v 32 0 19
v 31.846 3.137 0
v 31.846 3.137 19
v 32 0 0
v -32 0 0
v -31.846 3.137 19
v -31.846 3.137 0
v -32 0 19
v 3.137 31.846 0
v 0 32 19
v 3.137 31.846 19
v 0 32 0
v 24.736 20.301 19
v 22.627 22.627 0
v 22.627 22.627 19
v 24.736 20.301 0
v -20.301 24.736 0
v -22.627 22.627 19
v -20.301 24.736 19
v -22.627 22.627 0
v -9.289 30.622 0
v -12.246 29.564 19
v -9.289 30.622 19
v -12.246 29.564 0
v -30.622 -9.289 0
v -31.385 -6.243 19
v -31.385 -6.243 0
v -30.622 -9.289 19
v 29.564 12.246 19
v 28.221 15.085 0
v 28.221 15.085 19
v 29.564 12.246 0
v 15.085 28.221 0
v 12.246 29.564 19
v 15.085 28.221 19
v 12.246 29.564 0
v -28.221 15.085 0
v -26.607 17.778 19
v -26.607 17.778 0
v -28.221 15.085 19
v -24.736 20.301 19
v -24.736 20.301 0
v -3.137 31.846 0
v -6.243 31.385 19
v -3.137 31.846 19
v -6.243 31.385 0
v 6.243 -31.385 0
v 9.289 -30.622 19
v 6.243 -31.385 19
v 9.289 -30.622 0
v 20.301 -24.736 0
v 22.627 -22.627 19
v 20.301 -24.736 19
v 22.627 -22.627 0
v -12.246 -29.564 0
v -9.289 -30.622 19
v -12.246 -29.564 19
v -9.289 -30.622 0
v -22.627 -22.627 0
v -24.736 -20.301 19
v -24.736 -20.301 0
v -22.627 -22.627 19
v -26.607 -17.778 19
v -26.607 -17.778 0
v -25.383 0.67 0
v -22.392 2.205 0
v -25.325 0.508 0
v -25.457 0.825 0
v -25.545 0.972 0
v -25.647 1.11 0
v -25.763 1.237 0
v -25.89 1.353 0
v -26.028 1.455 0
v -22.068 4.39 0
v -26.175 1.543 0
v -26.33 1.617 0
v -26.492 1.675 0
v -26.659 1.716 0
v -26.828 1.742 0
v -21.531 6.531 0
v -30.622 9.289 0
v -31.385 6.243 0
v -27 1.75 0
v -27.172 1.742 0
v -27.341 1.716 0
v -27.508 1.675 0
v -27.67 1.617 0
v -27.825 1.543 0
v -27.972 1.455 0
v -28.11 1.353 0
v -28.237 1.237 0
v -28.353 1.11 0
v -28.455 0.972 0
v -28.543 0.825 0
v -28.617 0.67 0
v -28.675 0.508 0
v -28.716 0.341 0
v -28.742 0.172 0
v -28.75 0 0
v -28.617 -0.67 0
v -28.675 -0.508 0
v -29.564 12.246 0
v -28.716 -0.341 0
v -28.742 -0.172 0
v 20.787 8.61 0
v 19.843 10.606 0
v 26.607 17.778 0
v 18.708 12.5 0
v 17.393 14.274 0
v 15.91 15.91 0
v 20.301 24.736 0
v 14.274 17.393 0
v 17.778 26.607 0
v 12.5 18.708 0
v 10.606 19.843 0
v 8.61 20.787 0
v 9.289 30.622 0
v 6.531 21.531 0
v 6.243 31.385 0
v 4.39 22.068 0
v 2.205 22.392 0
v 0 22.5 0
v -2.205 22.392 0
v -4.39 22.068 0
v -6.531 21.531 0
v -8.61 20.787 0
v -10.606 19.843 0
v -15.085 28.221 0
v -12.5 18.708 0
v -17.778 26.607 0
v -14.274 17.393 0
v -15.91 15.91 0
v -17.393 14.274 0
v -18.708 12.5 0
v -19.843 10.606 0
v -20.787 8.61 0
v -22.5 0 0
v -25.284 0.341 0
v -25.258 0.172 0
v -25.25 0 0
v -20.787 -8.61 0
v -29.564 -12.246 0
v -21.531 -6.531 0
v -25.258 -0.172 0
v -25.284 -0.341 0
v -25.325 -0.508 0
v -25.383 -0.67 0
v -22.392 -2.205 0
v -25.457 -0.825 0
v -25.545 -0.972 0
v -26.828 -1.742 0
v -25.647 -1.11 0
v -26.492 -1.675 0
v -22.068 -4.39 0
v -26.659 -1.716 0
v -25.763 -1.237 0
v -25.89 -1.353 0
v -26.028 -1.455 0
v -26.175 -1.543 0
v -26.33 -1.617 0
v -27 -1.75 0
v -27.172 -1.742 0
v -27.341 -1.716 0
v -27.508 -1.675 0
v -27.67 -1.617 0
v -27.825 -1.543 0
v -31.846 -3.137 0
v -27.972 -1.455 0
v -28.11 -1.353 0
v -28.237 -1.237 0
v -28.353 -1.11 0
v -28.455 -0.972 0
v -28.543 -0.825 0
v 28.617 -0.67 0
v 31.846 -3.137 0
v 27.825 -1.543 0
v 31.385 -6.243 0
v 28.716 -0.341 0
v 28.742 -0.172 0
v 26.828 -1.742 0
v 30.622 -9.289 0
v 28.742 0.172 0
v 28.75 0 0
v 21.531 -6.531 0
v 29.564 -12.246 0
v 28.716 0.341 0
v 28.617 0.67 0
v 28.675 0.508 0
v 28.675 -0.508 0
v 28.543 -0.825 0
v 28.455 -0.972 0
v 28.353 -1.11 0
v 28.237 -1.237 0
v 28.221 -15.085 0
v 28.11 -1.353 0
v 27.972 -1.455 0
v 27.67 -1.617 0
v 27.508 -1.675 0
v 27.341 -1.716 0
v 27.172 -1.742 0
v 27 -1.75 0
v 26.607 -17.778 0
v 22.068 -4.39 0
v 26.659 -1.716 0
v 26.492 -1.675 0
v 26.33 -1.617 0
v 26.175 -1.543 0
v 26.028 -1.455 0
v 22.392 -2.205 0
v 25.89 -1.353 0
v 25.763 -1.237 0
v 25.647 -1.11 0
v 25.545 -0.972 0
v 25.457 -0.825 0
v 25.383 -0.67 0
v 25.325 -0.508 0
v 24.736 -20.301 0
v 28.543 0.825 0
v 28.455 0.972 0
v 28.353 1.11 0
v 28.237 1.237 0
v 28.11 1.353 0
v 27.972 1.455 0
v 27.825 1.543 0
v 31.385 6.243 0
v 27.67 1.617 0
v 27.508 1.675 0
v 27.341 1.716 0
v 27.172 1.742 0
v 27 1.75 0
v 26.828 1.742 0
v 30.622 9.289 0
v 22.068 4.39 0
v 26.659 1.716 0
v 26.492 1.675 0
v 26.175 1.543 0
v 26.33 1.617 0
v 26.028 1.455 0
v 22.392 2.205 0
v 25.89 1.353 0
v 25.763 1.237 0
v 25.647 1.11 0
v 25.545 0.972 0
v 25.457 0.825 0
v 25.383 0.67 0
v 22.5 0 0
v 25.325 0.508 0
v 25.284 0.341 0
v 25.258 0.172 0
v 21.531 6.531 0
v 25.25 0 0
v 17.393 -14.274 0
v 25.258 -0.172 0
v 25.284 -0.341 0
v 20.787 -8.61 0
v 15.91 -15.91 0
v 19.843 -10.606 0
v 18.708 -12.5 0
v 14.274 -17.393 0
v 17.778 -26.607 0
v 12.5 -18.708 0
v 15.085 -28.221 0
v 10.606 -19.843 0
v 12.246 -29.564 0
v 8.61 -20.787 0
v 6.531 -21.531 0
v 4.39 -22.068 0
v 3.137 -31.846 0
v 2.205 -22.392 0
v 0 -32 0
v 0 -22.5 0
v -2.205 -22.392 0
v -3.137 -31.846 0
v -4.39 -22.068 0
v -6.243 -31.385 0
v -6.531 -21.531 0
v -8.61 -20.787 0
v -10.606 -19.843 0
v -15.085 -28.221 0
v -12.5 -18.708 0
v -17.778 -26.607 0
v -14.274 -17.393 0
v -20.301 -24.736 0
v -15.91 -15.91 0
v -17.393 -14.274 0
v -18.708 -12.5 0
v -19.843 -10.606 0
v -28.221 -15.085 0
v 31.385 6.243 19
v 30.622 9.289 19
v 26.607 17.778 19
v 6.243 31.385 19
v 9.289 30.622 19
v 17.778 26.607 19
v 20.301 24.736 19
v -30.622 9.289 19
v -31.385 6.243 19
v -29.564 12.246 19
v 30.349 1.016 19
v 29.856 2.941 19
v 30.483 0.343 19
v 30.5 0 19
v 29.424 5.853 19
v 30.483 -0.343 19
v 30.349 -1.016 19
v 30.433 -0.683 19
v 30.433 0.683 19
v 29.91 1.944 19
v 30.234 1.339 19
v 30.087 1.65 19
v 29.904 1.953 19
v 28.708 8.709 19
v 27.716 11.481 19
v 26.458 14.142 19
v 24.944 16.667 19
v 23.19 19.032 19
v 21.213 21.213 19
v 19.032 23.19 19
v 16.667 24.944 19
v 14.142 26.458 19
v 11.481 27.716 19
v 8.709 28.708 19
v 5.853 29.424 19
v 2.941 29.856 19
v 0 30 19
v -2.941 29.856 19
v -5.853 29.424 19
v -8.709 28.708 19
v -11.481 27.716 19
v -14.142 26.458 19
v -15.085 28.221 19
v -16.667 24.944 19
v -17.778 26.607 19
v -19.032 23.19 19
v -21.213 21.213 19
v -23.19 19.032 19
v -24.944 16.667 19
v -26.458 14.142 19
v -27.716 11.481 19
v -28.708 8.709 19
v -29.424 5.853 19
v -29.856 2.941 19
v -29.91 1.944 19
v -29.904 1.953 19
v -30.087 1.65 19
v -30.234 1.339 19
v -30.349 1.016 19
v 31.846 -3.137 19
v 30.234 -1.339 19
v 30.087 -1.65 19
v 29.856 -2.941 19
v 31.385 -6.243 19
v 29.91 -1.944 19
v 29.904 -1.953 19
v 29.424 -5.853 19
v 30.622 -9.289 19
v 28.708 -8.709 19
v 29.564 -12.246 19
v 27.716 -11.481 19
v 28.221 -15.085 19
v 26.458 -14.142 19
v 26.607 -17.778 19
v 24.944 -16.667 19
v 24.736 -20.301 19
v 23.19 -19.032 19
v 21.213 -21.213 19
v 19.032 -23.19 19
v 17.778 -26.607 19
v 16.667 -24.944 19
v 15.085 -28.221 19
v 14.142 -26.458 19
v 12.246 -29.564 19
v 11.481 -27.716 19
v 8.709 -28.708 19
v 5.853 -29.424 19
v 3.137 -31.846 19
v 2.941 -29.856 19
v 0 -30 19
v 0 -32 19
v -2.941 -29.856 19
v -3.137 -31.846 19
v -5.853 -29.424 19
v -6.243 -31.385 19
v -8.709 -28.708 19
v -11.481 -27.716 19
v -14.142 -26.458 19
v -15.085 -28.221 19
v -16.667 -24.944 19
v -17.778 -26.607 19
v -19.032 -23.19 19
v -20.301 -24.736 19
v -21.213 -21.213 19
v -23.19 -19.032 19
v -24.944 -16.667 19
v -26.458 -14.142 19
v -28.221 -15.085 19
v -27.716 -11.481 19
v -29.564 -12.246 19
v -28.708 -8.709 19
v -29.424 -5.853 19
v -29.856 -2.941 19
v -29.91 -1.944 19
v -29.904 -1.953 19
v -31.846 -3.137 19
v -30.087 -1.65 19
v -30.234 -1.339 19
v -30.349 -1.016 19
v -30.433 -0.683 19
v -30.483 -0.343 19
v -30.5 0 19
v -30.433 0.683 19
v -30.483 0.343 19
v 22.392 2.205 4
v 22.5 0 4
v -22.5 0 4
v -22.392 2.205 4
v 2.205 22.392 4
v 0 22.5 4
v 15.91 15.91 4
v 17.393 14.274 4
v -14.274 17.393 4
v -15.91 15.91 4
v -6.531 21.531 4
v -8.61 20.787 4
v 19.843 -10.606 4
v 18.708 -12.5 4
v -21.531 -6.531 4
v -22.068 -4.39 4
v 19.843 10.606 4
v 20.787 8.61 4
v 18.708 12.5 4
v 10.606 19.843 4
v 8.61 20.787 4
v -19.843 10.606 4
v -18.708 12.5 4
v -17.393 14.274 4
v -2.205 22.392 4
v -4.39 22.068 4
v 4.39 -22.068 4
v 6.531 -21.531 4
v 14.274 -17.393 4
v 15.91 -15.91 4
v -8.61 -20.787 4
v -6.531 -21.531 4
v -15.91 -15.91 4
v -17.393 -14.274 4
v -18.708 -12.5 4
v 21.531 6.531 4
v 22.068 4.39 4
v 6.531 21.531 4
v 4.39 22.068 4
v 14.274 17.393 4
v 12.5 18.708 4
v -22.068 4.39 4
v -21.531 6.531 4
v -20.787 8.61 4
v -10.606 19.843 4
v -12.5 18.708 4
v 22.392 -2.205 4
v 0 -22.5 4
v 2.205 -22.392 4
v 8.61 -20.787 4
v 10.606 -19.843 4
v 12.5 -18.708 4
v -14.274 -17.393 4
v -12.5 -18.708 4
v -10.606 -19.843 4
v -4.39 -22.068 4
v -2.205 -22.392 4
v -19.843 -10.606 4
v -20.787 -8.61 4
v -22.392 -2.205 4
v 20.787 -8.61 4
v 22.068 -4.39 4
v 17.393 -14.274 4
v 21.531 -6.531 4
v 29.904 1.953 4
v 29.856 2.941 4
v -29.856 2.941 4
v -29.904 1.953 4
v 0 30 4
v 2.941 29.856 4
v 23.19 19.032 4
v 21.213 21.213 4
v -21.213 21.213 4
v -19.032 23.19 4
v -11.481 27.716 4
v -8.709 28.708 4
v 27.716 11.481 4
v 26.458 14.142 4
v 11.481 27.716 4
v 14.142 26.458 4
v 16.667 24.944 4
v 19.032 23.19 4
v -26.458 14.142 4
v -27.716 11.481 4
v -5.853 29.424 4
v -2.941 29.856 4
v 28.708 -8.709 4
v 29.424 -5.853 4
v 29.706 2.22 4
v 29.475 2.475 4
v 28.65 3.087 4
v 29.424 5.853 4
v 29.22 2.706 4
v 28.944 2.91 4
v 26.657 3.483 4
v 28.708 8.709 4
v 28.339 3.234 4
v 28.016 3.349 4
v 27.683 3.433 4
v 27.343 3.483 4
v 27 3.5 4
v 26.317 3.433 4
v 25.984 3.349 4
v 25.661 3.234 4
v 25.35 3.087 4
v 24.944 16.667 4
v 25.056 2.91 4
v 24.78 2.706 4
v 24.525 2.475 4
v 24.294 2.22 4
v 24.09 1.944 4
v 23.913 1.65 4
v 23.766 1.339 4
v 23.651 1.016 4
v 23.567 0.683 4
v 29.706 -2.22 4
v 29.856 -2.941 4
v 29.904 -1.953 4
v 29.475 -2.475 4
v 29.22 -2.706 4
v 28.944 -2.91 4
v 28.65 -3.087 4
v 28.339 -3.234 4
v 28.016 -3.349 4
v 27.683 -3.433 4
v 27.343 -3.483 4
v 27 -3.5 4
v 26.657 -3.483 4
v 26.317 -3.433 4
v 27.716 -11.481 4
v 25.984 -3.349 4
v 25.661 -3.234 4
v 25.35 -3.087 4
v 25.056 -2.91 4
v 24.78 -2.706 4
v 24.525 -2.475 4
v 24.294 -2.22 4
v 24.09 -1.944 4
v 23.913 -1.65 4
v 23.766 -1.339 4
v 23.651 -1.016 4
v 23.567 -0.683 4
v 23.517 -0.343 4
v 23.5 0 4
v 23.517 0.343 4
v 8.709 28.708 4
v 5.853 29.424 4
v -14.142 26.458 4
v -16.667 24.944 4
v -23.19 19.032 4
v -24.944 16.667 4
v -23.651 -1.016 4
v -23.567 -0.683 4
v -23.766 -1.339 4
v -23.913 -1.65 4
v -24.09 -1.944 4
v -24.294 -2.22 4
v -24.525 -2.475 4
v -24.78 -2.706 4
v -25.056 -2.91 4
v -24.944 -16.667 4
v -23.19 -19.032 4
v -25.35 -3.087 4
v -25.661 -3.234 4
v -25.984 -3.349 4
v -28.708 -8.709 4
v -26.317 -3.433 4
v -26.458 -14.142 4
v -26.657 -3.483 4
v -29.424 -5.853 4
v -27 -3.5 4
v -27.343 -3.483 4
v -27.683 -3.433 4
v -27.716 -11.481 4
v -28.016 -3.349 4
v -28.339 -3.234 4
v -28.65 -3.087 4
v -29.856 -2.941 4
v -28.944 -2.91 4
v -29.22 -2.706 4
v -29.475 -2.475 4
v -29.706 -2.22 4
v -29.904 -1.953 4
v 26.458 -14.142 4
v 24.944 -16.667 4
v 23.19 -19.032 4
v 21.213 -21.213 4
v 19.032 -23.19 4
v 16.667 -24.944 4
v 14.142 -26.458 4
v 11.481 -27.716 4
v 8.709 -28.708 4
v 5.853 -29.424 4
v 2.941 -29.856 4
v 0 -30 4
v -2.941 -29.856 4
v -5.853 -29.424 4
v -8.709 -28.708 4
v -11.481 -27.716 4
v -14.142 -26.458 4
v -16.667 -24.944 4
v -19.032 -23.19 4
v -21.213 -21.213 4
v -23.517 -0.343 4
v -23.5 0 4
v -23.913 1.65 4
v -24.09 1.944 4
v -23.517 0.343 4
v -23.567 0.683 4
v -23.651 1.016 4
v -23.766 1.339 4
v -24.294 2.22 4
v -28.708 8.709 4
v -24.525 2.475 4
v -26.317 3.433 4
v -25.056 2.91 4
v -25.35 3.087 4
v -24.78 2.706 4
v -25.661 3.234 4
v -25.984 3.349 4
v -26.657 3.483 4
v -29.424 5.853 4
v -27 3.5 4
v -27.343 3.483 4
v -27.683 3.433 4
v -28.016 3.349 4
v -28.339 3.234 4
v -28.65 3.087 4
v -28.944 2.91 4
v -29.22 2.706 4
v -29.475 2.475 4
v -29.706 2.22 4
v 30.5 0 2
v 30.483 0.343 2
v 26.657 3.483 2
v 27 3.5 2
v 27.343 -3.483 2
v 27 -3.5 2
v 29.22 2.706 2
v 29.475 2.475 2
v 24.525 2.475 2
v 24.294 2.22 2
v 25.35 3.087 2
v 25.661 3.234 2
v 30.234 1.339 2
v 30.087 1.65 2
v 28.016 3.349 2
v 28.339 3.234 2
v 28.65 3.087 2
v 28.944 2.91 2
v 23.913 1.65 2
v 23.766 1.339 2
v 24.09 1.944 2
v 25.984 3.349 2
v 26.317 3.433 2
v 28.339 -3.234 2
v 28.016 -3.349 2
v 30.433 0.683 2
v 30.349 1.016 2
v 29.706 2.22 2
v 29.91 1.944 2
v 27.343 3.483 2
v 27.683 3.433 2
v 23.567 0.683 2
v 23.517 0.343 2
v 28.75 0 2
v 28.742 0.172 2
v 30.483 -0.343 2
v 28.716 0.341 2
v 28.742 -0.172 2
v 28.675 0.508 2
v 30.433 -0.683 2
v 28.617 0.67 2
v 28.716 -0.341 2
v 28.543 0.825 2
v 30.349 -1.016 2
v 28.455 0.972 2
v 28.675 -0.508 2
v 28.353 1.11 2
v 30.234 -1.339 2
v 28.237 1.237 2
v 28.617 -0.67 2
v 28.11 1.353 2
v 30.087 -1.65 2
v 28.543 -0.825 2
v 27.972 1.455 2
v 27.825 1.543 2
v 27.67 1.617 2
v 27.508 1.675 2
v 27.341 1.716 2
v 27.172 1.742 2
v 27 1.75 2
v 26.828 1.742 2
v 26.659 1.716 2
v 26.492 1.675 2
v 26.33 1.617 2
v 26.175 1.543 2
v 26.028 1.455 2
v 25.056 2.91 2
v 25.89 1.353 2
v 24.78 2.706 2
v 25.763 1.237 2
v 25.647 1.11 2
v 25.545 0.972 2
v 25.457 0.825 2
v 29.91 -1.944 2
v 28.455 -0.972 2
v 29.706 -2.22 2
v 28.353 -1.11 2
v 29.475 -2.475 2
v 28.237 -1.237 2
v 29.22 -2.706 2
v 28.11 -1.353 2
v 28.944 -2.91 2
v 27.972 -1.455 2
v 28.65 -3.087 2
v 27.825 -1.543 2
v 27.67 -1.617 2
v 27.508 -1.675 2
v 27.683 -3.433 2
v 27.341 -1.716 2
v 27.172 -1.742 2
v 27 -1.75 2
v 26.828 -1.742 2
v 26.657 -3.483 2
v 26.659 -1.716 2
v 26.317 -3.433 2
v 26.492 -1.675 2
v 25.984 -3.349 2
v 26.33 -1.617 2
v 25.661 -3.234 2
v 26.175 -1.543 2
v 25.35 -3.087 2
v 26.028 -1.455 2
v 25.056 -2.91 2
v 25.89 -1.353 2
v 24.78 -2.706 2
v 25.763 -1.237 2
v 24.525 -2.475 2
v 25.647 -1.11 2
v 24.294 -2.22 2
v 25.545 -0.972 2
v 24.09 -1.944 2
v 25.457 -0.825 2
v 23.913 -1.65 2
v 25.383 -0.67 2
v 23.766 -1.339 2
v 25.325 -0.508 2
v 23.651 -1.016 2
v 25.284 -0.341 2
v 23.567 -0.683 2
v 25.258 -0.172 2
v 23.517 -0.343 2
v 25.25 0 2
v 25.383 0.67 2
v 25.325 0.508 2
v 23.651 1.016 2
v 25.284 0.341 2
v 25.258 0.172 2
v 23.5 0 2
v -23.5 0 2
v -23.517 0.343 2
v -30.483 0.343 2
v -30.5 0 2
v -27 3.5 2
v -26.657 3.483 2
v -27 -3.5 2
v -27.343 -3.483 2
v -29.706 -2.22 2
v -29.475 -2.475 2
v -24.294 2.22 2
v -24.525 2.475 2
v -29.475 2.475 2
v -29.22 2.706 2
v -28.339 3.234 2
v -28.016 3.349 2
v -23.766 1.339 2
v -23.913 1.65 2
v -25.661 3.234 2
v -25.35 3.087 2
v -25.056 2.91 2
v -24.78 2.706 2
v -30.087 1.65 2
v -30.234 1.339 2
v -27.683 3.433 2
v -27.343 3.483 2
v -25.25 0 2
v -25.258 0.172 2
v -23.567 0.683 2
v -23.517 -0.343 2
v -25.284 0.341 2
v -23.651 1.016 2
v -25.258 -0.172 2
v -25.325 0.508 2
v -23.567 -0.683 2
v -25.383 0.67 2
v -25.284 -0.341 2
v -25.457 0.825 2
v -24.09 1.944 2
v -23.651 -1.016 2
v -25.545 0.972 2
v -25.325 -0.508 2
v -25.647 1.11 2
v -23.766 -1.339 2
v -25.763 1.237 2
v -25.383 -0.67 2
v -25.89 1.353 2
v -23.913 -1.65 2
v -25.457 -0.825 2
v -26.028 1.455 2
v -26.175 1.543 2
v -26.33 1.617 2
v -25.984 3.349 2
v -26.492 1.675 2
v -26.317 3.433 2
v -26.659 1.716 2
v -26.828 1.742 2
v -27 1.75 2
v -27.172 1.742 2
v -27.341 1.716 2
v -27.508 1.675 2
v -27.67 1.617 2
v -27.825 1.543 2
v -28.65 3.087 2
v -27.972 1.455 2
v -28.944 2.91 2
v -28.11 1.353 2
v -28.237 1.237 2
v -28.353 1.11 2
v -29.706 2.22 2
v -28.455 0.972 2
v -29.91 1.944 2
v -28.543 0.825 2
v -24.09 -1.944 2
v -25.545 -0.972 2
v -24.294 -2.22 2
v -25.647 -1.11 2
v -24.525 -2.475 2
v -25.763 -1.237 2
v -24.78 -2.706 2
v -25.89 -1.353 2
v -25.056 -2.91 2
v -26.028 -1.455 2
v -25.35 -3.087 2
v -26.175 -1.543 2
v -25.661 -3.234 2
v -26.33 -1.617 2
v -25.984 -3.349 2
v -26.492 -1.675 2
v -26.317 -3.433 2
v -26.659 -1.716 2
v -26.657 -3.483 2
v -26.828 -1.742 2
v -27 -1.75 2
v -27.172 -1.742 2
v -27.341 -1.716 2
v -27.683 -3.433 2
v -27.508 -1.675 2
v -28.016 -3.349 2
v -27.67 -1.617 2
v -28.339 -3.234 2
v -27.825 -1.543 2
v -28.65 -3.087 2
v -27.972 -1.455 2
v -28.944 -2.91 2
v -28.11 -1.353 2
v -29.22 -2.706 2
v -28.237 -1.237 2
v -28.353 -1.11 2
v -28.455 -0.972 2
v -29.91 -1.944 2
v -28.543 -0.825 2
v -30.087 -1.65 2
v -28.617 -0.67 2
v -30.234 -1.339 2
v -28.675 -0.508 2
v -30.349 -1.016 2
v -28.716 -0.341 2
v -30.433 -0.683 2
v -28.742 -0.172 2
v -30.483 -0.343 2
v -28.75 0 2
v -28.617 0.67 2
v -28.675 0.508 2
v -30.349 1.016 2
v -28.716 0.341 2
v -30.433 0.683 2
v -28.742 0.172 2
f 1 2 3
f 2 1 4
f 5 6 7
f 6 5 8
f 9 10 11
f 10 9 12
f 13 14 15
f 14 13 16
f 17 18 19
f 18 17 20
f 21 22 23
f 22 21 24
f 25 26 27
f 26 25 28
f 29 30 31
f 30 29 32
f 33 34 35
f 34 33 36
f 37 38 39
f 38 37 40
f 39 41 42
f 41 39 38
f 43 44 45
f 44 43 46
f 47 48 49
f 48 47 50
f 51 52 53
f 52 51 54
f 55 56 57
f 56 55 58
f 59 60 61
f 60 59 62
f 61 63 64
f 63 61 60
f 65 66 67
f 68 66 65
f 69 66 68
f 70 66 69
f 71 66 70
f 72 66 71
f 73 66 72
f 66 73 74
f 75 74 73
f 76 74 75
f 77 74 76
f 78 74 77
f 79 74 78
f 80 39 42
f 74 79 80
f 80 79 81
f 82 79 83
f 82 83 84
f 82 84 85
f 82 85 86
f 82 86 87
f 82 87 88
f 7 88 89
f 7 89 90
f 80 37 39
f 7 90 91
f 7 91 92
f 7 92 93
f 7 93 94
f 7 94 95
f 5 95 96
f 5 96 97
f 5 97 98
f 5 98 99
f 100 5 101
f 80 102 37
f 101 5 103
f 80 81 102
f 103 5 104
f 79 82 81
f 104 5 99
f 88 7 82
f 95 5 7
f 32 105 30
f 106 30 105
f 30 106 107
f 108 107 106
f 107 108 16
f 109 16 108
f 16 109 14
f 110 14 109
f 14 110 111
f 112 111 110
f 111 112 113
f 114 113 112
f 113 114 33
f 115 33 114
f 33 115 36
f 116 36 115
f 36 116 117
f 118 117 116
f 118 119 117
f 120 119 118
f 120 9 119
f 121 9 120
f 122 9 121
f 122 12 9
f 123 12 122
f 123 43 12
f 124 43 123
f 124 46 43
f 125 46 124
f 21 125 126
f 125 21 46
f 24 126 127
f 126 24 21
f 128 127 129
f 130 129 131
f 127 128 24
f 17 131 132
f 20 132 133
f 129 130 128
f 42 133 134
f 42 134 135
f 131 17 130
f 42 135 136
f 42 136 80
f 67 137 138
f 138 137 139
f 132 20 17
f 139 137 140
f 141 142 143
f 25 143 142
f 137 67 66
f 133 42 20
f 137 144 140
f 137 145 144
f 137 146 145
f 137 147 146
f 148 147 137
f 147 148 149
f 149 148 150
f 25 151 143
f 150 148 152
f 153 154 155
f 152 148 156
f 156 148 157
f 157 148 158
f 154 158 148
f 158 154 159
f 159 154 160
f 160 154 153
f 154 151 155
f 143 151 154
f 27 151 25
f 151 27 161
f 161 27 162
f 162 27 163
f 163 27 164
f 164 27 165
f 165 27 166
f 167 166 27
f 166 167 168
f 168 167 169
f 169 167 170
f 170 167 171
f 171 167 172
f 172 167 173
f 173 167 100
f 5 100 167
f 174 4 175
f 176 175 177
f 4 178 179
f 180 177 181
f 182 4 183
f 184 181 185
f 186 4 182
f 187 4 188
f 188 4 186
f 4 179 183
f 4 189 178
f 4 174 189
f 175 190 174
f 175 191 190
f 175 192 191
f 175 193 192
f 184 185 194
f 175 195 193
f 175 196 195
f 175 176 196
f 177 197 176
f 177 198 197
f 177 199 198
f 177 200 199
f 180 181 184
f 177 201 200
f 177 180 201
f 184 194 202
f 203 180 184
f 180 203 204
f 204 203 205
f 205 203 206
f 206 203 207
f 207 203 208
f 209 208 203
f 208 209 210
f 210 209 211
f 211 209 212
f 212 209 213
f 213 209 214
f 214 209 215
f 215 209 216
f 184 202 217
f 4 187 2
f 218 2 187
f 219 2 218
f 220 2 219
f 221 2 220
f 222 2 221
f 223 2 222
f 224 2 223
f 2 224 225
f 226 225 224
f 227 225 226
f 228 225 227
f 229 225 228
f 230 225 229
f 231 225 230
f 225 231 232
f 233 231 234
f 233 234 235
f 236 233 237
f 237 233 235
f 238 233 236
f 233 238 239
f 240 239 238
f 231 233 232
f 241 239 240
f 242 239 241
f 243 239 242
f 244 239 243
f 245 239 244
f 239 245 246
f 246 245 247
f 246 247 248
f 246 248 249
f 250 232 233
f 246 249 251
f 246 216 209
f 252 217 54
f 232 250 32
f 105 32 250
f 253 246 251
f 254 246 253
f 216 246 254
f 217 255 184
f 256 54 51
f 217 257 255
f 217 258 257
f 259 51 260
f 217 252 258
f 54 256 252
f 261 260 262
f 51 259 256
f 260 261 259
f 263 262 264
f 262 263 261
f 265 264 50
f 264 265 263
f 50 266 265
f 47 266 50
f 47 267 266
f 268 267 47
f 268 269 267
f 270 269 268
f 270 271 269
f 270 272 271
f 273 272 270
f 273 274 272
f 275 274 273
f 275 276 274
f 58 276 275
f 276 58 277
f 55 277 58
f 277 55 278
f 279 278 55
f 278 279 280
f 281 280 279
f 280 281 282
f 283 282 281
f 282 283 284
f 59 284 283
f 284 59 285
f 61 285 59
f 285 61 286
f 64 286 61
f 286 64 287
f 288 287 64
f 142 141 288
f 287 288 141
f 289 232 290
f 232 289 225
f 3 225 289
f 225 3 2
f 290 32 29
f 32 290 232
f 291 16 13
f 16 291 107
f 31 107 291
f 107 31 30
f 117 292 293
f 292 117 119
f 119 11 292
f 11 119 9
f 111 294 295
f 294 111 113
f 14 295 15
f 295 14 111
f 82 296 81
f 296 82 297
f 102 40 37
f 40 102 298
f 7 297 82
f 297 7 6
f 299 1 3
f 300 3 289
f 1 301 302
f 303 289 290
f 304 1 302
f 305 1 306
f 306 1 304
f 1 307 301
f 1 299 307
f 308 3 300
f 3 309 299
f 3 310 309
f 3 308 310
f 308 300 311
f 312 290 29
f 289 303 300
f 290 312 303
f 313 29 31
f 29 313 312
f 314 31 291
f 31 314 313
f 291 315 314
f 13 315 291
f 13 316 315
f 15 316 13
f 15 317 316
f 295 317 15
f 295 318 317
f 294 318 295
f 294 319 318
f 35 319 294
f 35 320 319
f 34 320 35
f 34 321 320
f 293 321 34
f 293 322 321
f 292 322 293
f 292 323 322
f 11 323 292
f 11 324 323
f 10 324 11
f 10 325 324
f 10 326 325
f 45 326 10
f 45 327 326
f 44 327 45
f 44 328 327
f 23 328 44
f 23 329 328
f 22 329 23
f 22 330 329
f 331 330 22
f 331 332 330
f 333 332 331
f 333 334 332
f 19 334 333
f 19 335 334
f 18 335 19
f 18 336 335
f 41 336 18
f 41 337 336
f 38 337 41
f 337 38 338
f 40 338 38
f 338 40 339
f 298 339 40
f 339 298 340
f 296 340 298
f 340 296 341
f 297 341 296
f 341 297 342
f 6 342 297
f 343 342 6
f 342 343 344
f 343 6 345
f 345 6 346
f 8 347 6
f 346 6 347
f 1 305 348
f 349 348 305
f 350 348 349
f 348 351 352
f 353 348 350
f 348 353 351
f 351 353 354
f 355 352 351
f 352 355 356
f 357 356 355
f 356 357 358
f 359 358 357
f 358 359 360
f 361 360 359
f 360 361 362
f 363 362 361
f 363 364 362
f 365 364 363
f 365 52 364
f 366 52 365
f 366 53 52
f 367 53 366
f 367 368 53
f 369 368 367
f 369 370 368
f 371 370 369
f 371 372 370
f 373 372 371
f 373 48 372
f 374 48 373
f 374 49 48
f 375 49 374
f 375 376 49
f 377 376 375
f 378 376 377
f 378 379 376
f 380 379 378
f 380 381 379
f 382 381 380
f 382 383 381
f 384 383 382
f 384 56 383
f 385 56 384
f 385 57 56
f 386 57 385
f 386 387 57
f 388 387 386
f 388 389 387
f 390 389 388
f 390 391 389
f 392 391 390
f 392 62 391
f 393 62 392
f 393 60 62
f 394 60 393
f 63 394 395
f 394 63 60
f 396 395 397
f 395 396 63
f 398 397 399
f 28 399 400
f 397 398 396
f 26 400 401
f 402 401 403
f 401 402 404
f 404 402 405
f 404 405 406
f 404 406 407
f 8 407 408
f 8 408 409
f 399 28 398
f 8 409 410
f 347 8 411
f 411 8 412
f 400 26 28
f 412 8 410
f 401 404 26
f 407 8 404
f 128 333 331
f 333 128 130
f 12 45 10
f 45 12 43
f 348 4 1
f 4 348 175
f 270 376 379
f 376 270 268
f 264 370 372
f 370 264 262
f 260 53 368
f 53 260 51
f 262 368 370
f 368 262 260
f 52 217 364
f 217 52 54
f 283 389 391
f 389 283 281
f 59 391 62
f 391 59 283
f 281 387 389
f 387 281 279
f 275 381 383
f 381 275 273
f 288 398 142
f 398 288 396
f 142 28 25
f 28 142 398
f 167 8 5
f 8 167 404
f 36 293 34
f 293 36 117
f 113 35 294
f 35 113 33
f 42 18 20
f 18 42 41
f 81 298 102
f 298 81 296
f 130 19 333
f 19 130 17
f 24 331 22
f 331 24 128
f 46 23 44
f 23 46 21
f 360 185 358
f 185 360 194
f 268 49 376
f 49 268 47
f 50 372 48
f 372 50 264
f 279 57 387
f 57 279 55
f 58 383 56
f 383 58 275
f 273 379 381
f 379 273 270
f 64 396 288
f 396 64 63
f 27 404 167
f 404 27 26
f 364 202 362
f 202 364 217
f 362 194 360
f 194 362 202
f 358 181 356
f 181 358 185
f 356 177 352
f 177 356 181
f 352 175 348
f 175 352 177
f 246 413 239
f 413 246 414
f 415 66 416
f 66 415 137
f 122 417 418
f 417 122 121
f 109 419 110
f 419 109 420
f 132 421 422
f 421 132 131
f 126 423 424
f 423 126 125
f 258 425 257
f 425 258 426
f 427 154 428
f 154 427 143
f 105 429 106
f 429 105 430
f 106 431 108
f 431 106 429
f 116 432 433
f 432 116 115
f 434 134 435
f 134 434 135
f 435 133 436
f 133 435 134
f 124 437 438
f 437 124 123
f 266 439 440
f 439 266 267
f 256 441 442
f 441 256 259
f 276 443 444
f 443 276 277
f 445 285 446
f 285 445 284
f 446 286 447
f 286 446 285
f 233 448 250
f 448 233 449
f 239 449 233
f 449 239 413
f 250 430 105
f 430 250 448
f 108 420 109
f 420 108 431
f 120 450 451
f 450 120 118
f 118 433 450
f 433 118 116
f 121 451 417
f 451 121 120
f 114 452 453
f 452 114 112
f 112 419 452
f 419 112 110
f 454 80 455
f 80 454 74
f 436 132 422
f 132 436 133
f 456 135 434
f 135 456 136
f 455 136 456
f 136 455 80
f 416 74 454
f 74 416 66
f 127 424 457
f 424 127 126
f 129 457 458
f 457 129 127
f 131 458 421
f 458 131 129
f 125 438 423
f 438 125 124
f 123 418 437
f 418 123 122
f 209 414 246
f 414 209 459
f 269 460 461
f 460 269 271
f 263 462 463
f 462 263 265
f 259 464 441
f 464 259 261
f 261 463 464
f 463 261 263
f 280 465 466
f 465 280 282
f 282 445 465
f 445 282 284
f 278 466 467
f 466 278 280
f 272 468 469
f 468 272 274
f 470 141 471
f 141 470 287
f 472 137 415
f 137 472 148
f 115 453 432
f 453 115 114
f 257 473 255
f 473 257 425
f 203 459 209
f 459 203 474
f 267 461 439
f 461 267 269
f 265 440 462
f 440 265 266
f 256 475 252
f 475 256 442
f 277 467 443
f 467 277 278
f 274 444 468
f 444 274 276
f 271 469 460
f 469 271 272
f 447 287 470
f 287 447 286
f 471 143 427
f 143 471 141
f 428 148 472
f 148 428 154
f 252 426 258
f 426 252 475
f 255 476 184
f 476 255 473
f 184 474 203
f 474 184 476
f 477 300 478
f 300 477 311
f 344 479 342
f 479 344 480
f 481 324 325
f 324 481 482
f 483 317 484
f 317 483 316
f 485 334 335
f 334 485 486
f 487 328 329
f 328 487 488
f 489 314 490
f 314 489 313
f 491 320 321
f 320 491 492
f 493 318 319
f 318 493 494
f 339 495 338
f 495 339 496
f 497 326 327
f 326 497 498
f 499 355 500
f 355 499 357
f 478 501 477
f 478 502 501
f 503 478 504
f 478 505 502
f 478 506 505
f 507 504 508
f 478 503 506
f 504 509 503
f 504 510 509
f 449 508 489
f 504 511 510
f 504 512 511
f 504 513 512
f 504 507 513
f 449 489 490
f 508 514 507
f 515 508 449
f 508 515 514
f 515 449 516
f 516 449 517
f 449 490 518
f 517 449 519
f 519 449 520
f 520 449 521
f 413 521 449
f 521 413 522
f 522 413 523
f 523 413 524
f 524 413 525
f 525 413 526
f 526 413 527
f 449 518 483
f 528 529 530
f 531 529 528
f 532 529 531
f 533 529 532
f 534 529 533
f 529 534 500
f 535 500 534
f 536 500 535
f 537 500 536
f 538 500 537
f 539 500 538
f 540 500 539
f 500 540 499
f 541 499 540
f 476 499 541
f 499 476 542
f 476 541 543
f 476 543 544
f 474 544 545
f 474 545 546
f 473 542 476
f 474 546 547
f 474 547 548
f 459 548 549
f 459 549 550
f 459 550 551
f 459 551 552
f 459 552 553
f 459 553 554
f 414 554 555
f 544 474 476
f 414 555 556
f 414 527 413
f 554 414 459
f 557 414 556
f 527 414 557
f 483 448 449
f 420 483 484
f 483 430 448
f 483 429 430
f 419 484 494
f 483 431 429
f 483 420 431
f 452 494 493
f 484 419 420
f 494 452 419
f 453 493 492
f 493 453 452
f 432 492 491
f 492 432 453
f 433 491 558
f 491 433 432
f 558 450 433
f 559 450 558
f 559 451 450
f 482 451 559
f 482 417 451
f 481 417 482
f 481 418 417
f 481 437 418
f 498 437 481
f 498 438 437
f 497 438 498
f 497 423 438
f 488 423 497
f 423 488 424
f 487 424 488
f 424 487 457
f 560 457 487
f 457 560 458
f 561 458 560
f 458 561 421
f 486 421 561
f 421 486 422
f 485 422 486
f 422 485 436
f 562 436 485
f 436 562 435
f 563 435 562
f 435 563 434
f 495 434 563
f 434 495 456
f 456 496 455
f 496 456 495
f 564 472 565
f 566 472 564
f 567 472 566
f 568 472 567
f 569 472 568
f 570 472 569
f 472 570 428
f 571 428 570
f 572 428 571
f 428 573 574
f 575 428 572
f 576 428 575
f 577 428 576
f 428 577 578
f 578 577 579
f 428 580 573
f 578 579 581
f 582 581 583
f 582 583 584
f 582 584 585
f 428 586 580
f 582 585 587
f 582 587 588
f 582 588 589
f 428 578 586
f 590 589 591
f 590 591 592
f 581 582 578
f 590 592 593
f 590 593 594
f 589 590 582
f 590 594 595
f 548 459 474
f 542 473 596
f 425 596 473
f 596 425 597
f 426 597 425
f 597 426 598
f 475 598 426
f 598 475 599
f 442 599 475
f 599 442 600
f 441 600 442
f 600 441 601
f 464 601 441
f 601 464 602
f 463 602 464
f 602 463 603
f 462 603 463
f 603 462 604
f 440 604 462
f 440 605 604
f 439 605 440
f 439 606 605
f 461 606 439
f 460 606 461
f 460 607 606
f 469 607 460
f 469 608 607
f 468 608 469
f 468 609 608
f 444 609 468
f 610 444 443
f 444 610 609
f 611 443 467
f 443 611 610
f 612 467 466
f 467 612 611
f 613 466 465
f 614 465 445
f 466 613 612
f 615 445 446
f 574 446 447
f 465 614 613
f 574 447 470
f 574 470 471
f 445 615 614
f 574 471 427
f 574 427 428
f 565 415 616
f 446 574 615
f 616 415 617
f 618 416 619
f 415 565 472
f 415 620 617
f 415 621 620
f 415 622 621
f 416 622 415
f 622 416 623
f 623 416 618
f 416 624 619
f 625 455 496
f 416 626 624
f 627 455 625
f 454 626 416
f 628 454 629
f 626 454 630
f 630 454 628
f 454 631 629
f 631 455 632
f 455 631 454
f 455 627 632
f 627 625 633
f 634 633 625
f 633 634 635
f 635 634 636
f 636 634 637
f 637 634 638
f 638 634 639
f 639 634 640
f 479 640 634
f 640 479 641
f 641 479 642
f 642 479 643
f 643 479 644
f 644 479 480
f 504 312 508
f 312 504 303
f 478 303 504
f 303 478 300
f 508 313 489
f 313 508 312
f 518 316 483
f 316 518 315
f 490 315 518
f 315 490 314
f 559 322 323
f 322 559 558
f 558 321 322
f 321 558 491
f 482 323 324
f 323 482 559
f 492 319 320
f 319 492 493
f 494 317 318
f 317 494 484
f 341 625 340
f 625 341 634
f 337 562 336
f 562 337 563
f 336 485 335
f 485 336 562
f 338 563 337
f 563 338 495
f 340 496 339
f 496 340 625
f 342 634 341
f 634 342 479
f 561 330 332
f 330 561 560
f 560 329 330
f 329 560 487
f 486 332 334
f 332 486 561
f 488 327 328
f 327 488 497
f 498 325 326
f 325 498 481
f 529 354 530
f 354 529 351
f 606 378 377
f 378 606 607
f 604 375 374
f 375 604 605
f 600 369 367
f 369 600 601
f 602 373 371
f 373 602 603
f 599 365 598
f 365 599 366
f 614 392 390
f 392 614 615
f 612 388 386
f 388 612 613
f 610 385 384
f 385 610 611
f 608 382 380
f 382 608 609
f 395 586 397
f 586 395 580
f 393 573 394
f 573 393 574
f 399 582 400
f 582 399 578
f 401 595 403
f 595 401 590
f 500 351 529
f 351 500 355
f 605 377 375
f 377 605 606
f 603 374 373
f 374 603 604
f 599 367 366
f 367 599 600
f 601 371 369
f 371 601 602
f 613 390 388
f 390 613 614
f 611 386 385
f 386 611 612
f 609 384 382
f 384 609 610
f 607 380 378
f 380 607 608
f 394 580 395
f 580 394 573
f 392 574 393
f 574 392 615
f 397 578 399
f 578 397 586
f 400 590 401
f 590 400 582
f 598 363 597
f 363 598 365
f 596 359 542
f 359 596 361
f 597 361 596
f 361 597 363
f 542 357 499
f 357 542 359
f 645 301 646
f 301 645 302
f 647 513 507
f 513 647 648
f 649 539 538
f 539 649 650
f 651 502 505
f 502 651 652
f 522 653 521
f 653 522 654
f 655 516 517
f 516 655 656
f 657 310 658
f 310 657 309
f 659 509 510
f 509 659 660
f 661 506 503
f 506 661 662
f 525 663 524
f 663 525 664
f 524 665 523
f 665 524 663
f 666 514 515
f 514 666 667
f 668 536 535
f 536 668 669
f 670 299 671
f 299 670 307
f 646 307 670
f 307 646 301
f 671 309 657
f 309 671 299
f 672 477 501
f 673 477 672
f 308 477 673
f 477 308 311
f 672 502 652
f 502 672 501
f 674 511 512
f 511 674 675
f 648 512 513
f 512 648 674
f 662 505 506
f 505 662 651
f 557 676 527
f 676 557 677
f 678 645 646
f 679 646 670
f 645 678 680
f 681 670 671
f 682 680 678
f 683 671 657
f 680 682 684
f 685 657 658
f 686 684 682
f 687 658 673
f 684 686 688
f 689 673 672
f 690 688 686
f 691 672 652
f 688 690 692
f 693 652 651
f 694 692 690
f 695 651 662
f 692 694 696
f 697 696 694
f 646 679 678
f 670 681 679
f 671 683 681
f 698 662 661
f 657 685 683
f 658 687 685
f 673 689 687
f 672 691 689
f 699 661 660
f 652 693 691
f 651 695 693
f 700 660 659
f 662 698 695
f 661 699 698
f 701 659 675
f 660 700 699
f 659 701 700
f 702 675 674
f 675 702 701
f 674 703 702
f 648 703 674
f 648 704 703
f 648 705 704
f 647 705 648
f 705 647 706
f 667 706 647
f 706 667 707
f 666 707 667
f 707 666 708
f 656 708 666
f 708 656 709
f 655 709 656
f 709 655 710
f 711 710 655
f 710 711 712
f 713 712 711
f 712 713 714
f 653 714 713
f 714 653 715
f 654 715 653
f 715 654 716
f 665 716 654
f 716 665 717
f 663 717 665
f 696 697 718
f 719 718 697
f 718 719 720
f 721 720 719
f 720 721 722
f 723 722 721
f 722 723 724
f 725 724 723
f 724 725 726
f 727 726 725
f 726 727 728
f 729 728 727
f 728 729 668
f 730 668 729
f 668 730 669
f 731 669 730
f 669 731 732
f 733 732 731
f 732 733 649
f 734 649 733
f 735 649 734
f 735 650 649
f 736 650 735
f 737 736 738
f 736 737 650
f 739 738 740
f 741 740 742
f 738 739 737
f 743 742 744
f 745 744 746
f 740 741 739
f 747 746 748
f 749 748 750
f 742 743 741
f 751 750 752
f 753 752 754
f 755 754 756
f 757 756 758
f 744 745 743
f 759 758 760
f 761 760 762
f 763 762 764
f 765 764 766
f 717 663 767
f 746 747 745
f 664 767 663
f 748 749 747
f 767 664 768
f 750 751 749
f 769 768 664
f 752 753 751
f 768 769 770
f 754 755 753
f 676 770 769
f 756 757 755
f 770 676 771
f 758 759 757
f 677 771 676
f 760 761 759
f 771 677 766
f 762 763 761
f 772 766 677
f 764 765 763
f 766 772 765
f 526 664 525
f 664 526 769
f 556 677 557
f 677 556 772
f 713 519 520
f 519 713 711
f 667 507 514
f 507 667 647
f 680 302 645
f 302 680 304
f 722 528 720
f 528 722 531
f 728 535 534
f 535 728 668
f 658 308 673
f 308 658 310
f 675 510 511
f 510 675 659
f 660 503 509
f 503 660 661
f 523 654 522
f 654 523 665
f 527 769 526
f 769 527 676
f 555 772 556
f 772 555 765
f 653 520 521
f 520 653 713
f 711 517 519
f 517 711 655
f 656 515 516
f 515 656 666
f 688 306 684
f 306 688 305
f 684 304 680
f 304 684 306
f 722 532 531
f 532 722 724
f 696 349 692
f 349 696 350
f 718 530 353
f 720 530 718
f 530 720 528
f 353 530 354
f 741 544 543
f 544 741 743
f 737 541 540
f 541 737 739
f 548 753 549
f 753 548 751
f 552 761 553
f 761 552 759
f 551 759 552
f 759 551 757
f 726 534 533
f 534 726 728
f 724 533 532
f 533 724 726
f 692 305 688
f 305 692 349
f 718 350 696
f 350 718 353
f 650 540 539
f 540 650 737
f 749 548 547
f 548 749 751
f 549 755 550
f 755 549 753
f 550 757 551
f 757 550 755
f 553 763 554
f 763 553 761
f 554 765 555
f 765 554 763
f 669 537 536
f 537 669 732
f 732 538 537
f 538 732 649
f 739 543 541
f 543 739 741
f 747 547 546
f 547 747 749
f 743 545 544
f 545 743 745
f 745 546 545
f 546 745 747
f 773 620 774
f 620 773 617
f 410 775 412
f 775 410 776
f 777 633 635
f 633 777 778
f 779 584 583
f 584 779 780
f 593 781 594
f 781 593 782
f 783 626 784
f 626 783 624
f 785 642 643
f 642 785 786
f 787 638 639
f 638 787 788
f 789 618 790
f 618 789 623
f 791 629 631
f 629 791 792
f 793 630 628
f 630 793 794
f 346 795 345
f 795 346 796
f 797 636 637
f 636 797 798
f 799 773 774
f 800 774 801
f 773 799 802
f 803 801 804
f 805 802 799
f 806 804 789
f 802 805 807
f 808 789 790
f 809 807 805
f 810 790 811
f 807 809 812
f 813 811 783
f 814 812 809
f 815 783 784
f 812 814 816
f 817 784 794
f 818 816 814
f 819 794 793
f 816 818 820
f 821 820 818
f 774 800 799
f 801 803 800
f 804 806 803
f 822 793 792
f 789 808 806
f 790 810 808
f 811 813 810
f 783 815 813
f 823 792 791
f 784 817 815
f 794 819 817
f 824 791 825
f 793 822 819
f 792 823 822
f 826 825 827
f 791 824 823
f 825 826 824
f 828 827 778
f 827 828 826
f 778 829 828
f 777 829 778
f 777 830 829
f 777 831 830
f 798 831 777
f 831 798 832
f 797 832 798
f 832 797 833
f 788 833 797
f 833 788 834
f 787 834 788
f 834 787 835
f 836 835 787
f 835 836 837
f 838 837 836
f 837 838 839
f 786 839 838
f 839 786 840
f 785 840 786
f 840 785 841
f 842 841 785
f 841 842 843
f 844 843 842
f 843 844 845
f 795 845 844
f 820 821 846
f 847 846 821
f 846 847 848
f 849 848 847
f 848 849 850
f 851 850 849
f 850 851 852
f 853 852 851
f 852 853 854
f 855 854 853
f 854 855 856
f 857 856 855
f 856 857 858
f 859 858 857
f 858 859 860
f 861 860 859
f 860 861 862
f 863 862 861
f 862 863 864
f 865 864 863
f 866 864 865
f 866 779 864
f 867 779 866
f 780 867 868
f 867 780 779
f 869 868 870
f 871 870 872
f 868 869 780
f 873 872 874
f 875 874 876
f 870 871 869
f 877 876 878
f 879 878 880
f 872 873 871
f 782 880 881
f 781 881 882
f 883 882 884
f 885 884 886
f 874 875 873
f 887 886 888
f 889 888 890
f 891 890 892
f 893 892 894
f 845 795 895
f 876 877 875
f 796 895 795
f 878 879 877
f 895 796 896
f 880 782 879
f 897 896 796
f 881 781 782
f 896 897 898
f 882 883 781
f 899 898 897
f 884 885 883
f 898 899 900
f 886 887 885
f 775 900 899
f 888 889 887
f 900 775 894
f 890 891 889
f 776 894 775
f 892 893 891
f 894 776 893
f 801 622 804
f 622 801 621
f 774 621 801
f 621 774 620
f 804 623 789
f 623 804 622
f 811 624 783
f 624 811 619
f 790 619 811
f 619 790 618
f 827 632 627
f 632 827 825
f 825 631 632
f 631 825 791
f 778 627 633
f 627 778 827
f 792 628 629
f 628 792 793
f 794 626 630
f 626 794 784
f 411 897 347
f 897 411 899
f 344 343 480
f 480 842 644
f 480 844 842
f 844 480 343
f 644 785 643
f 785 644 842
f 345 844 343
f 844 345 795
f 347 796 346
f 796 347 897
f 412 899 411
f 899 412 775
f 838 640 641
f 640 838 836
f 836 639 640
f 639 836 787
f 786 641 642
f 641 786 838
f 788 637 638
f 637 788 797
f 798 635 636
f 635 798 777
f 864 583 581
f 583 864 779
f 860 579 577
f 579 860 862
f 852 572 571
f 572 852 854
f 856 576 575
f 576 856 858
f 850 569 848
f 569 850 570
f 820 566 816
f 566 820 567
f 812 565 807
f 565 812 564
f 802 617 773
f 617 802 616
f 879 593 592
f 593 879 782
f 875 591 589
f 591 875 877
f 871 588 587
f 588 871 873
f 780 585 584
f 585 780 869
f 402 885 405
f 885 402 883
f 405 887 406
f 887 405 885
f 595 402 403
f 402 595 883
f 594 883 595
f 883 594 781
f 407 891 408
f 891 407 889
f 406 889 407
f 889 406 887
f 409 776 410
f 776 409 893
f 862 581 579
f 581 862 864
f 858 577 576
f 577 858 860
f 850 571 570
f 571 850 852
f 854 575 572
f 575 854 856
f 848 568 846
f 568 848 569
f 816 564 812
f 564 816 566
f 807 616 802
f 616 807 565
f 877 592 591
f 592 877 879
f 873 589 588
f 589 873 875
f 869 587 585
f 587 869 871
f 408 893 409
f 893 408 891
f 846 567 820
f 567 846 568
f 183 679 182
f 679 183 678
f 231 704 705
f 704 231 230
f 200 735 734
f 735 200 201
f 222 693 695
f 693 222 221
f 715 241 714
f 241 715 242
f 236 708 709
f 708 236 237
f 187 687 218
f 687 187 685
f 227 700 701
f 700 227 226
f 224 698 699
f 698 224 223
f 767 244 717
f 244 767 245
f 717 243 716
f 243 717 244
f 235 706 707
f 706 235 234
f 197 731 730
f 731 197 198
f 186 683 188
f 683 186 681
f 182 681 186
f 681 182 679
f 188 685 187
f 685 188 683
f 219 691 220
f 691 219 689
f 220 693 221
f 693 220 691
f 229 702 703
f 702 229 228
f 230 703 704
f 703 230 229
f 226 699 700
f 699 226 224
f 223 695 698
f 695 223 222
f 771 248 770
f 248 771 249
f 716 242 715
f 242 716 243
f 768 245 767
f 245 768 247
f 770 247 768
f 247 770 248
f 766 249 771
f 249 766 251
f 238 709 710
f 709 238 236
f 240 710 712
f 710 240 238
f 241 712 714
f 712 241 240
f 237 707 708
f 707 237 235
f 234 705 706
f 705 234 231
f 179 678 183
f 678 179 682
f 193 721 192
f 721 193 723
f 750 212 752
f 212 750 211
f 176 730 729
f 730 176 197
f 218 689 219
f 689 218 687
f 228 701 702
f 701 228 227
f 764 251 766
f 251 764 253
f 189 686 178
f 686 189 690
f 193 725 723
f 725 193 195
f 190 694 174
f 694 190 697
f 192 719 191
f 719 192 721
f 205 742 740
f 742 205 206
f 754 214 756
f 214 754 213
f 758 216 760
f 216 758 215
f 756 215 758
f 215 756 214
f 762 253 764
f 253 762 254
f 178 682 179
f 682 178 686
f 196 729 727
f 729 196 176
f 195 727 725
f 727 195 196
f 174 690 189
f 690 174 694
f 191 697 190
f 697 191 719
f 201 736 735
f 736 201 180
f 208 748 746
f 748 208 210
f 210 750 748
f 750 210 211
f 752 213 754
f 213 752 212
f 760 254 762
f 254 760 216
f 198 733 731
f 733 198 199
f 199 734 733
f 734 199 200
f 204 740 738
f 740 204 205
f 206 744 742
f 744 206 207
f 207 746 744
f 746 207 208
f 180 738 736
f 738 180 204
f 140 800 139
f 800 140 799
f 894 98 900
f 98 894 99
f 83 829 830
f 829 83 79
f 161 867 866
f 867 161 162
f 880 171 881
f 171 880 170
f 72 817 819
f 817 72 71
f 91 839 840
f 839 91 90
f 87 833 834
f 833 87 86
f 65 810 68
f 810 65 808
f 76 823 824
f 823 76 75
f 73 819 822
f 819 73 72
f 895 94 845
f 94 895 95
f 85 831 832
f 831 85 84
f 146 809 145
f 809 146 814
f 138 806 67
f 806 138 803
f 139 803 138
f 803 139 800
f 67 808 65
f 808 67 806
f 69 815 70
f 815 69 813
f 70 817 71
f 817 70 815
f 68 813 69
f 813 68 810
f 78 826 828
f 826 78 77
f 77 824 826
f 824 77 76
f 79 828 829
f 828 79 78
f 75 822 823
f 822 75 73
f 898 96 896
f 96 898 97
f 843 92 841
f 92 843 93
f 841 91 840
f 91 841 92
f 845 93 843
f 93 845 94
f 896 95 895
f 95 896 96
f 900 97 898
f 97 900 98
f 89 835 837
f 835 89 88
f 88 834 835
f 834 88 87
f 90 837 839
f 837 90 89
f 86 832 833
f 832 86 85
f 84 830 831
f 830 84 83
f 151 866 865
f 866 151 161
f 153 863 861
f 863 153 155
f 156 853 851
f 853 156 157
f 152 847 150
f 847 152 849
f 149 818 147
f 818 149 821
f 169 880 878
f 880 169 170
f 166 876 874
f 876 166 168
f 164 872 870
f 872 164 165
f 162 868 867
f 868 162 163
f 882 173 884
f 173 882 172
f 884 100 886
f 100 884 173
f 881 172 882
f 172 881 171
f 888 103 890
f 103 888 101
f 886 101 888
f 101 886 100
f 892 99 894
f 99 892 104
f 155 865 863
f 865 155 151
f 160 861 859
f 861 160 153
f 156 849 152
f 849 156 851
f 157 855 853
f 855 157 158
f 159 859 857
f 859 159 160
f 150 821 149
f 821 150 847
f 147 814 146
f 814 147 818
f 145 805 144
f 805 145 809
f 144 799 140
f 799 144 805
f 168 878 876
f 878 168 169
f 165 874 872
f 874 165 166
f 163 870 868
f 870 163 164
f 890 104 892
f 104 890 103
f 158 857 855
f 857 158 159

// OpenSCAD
// Definition size of housing
// **************************

intdia      = 60;    
lensdia      = 42;     
height     = 15;
recess     = 2.4;
wall        = 2;
overlap = 10;

radius     = 1.2;            
act_x      = 2.4;
act_y      = 2.4;
act_z      = 4;

act_clip_w=1;

//Definition of circle angular resolution
resol        = 64;           // Identical to housing !!!


difference () {

    cylinder ( h=wall*2+height, r=wall+intdia/2, $fn = resol);
    
    //cutout for reflector face
    cylinder ( h=10, r=45/2, $fn = resol);

    //cutout for main end
    translate ([0,0,4]) cylinder ( h=20, r=intdia/2, $fn = resol);
    
    translate ([27,0,2]) cylinder( h=height+2, r=3.5, $fn = resol);
    translate ([-27,0,2]) cylinder( h=height+2, r=3.5, $fn = resol);

    translate ([27,0,0]) cylinder( h=2, r=1.75, $fn = resol);
    translate ([-27,0,0]) cylinder( h=2, r=1.75, $fn = resol);



   // Space for Breakouts, holes, ...


};
